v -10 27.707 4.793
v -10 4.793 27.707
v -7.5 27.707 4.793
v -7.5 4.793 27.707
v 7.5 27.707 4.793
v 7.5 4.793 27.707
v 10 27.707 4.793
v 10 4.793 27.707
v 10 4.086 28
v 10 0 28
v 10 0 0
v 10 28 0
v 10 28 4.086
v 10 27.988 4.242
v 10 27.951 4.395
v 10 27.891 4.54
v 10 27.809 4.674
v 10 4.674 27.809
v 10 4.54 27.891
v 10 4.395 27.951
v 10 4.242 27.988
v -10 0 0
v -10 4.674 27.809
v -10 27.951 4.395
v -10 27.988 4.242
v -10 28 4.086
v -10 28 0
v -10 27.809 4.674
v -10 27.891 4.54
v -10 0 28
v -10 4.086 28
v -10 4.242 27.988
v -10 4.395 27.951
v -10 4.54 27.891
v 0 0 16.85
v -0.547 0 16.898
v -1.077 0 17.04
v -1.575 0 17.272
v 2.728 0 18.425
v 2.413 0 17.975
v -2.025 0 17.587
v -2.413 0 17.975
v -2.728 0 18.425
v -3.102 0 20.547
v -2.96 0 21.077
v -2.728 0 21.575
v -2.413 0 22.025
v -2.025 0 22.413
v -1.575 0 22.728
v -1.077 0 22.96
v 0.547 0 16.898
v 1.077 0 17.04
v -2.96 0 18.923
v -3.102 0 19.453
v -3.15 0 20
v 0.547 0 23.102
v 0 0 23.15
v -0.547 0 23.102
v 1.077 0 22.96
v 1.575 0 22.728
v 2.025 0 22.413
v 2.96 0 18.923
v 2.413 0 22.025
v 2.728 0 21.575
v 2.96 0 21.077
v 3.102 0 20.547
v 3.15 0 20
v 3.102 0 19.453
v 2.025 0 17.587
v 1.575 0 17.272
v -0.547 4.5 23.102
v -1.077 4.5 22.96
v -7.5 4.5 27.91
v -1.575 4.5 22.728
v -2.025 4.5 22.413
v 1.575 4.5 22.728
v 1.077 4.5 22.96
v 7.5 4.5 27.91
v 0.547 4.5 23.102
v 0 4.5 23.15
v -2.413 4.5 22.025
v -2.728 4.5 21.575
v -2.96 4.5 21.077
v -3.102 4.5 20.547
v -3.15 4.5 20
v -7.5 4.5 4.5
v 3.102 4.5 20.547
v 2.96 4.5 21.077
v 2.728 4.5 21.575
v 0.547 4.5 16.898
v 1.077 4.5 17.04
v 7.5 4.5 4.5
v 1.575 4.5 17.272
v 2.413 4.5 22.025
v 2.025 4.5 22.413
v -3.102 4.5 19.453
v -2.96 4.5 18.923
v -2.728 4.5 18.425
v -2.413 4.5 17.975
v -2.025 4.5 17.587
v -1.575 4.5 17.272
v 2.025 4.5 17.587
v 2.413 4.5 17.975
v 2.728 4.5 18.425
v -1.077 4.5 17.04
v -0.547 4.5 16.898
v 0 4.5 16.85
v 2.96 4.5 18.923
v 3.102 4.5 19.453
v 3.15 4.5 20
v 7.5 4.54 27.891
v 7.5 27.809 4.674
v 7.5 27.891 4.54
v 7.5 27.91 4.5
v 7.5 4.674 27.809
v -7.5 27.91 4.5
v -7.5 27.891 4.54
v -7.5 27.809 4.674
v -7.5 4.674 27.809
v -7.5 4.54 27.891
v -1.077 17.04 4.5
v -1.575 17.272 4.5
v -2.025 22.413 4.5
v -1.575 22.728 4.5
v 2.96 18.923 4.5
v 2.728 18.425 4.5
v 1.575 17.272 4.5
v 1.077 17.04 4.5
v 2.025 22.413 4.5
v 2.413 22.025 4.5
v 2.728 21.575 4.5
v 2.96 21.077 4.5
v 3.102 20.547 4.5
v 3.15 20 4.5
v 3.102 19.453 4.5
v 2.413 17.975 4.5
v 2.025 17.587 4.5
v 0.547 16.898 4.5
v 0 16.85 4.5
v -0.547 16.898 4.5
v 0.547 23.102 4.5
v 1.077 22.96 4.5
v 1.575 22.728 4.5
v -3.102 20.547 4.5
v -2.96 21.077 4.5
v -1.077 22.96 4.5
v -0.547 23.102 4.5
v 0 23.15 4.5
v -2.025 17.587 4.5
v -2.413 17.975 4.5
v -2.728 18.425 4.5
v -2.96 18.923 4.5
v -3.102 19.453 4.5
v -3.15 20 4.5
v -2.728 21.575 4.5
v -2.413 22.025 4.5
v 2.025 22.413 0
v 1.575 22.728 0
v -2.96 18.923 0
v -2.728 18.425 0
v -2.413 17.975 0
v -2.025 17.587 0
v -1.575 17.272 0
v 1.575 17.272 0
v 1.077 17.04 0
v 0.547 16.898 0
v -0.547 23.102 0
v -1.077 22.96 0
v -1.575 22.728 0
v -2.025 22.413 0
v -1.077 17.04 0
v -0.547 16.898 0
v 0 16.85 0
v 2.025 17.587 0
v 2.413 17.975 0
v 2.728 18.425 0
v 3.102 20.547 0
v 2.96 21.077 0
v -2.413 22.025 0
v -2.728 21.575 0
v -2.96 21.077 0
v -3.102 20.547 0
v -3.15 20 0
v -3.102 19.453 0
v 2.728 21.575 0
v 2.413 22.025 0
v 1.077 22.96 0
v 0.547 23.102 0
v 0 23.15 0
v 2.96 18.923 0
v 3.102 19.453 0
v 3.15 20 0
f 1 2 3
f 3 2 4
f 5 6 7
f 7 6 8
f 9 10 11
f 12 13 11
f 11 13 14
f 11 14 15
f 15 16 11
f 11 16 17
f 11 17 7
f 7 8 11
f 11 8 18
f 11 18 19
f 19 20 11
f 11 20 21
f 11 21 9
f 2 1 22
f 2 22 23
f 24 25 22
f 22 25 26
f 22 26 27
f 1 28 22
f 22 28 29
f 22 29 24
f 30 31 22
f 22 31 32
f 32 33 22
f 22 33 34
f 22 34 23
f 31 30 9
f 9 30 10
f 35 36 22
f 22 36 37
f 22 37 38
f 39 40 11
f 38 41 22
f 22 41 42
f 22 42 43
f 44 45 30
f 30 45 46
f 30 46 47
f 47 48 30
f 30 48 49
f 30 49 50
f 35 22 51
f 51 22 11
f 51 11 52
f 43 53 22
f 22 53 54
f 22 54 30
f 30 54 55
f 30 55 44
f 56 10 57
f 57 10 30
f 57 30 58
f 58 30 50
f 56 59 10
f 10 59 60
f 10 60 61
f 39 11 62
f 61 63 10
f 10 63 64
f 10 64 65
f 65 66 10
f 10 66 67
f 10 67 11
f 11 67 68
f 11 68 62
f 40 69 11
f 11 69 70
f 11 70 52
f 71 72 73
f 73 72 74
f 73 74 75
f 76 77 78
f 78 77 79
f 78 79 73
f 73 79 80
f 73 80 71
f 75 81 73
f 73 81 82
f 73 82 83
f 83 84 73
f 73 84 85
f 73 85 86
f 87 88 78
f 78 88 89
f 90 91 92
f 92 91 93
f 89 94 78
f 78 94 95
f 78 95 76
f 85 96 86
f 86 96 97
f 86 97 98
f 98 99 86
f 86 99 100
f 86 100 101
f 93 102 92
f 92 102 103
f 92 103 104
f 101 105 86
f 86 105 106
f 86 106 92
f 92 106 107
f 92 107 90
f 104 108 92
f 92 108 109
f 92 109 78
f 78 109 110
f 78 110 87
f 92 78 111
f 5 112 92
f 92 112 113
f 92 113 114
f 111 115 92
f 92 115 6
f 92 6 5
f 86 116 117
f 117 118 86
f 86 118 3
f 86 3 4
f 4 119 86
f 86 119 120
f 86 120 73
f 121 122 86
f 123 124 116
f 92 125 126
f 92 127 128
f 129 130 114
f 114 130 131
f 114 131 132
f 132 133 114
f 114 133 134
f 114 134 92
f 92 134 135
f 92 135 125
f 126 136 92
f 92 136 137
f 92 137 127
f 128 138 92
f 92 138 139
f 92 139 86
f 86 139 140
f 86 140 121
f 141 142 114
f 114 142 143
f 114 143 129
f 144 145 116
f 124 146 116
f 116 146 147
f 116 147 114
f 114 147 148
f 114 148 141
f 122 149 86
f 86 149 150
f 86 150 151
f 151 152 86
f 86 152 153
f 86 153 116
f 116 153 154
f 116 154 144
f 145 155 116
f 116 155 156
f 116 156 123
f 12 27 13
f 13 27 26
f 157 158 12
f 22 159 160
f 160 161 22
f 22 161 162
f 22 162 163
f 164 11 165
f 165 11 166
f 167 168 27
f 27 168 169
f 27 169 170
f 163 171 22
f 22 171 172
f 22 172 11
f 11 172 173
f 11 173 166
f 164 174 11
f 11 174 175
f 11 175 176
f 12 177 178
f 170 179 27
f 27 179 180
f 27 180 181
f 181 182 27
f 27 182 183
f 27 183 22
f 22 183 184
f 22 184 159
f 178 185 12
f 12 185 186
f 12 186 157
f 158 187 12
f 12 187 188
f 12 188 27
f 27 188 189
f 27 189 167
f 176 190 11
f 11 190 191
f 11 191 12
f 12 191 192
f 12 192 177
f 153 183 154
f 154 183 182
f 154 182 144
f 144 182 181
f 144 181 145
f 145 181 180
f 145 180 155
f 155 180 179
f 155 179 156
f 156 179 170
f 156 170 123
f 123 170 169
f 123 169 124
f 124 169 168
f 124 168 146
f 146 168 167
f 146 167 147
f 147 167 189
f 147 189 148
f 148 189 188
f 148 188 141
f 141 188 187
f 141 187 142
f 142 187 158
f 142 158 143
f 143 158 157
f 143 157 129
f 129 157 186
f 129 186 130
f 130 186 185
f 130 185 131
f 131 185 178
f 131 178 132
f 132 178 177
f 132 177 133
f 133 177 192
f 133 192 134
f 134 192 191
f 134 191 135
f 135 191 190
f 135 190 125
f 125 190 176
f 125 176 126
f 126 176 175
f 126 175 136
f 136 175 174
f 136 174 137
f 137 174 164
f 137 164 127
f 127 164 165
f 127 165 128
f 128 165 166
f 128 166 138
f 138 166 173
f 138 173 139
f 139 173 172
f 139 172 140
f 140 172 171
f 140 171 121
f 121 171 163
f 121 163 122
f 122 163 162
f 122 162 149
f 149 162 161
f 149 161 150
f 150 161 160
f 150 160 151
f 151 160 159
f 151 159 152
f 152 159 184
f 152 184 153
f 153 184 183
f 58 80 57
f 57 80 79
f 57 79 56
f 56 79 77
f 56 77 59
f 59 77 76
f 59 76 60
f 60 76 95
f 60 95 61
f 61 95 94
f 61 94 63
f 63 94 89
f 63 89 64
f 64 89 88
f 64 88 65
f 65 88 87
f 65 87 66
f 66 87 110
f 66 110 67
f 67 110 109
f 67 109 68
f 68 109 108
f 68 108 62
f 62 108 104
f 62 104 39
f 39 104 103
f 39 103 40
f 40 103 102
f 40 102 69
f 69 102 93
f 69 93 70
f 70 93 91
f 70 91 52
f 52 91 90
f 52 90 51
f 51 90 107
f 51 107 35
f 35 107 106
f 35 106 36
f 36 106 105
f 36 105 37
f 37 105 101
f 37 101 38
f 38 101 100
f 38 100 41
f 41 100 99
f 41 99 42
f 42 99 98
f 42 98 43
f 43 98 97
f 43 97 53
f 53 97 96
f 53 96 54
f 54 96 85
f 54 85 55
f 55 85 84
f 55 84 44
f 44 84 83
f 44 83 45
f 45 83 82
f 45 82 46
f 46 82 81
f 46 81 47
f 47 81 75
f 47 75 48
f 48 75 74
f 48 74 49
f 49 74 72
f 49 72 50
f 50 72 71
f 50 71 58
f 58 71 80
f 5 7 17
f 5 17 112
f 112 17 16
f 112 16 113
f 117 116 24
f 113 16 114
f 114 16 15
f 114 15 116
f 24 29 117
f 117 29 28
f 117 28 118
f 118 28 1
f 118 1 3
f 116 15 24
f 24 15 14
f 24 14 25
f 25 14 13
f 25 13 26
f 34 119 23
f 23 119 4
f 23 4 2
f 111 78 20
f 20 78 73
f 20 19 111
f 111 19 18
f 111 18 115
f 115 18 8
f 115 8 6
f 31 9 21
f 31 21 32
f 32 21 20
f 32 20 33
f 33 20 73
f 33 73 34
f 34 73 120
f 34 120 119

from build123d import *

# Parameters (mm, degrees)
BOSS_EXTRUDE1_DEPTH            = 20
SKETCH2_W                      = 20
SKETCH2_H                      = 23.5
BOSS_EXTRUDE2_DEPTH            = 4.5
CUT_EXTRUDE1_DEPTH             = 15
SKETCH4_W                      = 20
SKETCH4_H                      = 28
BOSS_EXTRUDE3_DEPTH            = 4.5
F_6_3_6_3_DIAMETER_HOLE1_D     = 6.3
F_6_3_6_3_DIAMETER_HOLE1_DEPTH = 28
F_6_3_6_3_DIAMETER_HOLE2_D     = 6.3
FILLET2_START                  = -11
FILLET2_DEPTH                  = 22


with BuildPart() as part:
    # Sketch1 → Boss-Extrude1 (new body)
    with BuildSketch(Plane(origin=(-10, 0, 0), x_dir=(0, -1, 0), z_dir=(-1, 0, 0))):
        with BuildLine():
            Line((-28, 4.5), (-4.5, 4.5))
            Line((-4.5, 4.5), (-4.5, 28))
            Line((-4.5, 28), (-4.792893219, 27.707106781))
            add(Edge.make_bspline(
                [(-4.792893219, 27.707106781), (-12.430964406, 20.069035594), (-20.069035594, 12.430964406), (-27.707106781, 4.792893219)],
                knots=[0, 0, 0, 0, 1, 1, 1, 1], degree=3))
            Line((-27.707106781, 4.792893219), (-28, 4.5))
        make_face()
    extrude(amount=-BOSS_EXTRUDE1_DEPTH)

    # Sketch2 → Boss-Extrude2 (add)
    with BuildSketch(Plane.XZ.offset(-4.5)):
        with Locations((0, 16.25)):
            Rectangle(SKETCH2_W, SKETCH2_H)
    extrude(amount=BOSS_EXTRUDE2_DEPTH)

    # Sketch3 → Cut-Extrude1 (cut)
    with BuildSketch(Plane(origin=(-7.5, 0, 0), x_dir=(0, -1, 0), z_dir=(-1, 0, 0))):
        with BuildLine():
            Line((-4.5, 4.5), (-4.5, 28))
            Line((-4.5, 28), (-4.792893219, 27.707106781))
            add(Edge.make_bspline(
                [(-4.792893219, 27.707106781), (-12.430964406, 20.069035594), (-20.069035594, 12.430964406), (-27.707106781, 4.792893219)],
                knots=[0, 0, 0, 0, 1, 1, 1, 1], degree=3))
            Line((-27.707106781, 4.792893219), (-28, 4.5))
            Line((-28, 4.5), (-4.5, 4.5))
        make_face()
    extrude(amount=-CUT_EXTRUDE1_DEPTH, mode=Mode.SUBTRACT)

    # Sketch4 → Boss-Extrude3 (add)
    with BuildSketch(Plane(origin=(0, 0, 4.5), x_dir=(-1, 0, 0), z_dir=(0, 0, -1))):
        with Locations((0, 14)):
            Rectangle(SKETCH4_W, SKETCH4_H)
    extrude(amount=BOSS_EXTRUDE3_DEPTH)

    # Ø6.3 (6.3) Diameter Hole1
    with Locations(Plane(origin=(0, 0, 0), x_dir=(-1, 0, 0), z_dir=(0, 0, -1))):
        with Locations((0, 20)):
            Hole(F_6_3_6_3_DIAMETER_HOLE1_D / 2, depth=F_6_3_6_3_DIAMETER_HOLE1_DEPTH)

    # Ø6.3 (6.3) Diameter Hole2 (through all)
    with Locations(Plane(origin=(0, 4.5, 0), x_dir=(1, 0, 0), z_dir=(0, 1, 0))):
        with Locations((0, -20)):
            Hole(F_6_3_6_3_DIAMETER_HOLE2_D / 2)

    # Fillet2: read off the stored shape, not the designer's step
    # Fillet2 outline → Fillet2 (cut)
    with BuildSketch(Plane.YZ.offset(FILLET2_START)):
        with BuildLine():
            Line((28, 4.085786438), (28, 4.5))
            Line((28, 4.5), (27.707106781, 4.792893219))
            ThreePointArc((27.707106781, 4.792893219), (27.923879533, 4.46846987), (28, 4.085786438))
        make_face()
        with BuildLine():
            Line((4.792893219, 27.707106781), (4.5, 28))
            Line((4.5, 28), (4.085786438, 28))
            ThreePointArc((4.085786438, 28), (4.46846987, 27.923879533), (4.792893219, 27.707106781))
        make_face()
    extrude(amount=FILLET2_DEPTH, mode=Mode.SUBTRACT)


solid = part.part
